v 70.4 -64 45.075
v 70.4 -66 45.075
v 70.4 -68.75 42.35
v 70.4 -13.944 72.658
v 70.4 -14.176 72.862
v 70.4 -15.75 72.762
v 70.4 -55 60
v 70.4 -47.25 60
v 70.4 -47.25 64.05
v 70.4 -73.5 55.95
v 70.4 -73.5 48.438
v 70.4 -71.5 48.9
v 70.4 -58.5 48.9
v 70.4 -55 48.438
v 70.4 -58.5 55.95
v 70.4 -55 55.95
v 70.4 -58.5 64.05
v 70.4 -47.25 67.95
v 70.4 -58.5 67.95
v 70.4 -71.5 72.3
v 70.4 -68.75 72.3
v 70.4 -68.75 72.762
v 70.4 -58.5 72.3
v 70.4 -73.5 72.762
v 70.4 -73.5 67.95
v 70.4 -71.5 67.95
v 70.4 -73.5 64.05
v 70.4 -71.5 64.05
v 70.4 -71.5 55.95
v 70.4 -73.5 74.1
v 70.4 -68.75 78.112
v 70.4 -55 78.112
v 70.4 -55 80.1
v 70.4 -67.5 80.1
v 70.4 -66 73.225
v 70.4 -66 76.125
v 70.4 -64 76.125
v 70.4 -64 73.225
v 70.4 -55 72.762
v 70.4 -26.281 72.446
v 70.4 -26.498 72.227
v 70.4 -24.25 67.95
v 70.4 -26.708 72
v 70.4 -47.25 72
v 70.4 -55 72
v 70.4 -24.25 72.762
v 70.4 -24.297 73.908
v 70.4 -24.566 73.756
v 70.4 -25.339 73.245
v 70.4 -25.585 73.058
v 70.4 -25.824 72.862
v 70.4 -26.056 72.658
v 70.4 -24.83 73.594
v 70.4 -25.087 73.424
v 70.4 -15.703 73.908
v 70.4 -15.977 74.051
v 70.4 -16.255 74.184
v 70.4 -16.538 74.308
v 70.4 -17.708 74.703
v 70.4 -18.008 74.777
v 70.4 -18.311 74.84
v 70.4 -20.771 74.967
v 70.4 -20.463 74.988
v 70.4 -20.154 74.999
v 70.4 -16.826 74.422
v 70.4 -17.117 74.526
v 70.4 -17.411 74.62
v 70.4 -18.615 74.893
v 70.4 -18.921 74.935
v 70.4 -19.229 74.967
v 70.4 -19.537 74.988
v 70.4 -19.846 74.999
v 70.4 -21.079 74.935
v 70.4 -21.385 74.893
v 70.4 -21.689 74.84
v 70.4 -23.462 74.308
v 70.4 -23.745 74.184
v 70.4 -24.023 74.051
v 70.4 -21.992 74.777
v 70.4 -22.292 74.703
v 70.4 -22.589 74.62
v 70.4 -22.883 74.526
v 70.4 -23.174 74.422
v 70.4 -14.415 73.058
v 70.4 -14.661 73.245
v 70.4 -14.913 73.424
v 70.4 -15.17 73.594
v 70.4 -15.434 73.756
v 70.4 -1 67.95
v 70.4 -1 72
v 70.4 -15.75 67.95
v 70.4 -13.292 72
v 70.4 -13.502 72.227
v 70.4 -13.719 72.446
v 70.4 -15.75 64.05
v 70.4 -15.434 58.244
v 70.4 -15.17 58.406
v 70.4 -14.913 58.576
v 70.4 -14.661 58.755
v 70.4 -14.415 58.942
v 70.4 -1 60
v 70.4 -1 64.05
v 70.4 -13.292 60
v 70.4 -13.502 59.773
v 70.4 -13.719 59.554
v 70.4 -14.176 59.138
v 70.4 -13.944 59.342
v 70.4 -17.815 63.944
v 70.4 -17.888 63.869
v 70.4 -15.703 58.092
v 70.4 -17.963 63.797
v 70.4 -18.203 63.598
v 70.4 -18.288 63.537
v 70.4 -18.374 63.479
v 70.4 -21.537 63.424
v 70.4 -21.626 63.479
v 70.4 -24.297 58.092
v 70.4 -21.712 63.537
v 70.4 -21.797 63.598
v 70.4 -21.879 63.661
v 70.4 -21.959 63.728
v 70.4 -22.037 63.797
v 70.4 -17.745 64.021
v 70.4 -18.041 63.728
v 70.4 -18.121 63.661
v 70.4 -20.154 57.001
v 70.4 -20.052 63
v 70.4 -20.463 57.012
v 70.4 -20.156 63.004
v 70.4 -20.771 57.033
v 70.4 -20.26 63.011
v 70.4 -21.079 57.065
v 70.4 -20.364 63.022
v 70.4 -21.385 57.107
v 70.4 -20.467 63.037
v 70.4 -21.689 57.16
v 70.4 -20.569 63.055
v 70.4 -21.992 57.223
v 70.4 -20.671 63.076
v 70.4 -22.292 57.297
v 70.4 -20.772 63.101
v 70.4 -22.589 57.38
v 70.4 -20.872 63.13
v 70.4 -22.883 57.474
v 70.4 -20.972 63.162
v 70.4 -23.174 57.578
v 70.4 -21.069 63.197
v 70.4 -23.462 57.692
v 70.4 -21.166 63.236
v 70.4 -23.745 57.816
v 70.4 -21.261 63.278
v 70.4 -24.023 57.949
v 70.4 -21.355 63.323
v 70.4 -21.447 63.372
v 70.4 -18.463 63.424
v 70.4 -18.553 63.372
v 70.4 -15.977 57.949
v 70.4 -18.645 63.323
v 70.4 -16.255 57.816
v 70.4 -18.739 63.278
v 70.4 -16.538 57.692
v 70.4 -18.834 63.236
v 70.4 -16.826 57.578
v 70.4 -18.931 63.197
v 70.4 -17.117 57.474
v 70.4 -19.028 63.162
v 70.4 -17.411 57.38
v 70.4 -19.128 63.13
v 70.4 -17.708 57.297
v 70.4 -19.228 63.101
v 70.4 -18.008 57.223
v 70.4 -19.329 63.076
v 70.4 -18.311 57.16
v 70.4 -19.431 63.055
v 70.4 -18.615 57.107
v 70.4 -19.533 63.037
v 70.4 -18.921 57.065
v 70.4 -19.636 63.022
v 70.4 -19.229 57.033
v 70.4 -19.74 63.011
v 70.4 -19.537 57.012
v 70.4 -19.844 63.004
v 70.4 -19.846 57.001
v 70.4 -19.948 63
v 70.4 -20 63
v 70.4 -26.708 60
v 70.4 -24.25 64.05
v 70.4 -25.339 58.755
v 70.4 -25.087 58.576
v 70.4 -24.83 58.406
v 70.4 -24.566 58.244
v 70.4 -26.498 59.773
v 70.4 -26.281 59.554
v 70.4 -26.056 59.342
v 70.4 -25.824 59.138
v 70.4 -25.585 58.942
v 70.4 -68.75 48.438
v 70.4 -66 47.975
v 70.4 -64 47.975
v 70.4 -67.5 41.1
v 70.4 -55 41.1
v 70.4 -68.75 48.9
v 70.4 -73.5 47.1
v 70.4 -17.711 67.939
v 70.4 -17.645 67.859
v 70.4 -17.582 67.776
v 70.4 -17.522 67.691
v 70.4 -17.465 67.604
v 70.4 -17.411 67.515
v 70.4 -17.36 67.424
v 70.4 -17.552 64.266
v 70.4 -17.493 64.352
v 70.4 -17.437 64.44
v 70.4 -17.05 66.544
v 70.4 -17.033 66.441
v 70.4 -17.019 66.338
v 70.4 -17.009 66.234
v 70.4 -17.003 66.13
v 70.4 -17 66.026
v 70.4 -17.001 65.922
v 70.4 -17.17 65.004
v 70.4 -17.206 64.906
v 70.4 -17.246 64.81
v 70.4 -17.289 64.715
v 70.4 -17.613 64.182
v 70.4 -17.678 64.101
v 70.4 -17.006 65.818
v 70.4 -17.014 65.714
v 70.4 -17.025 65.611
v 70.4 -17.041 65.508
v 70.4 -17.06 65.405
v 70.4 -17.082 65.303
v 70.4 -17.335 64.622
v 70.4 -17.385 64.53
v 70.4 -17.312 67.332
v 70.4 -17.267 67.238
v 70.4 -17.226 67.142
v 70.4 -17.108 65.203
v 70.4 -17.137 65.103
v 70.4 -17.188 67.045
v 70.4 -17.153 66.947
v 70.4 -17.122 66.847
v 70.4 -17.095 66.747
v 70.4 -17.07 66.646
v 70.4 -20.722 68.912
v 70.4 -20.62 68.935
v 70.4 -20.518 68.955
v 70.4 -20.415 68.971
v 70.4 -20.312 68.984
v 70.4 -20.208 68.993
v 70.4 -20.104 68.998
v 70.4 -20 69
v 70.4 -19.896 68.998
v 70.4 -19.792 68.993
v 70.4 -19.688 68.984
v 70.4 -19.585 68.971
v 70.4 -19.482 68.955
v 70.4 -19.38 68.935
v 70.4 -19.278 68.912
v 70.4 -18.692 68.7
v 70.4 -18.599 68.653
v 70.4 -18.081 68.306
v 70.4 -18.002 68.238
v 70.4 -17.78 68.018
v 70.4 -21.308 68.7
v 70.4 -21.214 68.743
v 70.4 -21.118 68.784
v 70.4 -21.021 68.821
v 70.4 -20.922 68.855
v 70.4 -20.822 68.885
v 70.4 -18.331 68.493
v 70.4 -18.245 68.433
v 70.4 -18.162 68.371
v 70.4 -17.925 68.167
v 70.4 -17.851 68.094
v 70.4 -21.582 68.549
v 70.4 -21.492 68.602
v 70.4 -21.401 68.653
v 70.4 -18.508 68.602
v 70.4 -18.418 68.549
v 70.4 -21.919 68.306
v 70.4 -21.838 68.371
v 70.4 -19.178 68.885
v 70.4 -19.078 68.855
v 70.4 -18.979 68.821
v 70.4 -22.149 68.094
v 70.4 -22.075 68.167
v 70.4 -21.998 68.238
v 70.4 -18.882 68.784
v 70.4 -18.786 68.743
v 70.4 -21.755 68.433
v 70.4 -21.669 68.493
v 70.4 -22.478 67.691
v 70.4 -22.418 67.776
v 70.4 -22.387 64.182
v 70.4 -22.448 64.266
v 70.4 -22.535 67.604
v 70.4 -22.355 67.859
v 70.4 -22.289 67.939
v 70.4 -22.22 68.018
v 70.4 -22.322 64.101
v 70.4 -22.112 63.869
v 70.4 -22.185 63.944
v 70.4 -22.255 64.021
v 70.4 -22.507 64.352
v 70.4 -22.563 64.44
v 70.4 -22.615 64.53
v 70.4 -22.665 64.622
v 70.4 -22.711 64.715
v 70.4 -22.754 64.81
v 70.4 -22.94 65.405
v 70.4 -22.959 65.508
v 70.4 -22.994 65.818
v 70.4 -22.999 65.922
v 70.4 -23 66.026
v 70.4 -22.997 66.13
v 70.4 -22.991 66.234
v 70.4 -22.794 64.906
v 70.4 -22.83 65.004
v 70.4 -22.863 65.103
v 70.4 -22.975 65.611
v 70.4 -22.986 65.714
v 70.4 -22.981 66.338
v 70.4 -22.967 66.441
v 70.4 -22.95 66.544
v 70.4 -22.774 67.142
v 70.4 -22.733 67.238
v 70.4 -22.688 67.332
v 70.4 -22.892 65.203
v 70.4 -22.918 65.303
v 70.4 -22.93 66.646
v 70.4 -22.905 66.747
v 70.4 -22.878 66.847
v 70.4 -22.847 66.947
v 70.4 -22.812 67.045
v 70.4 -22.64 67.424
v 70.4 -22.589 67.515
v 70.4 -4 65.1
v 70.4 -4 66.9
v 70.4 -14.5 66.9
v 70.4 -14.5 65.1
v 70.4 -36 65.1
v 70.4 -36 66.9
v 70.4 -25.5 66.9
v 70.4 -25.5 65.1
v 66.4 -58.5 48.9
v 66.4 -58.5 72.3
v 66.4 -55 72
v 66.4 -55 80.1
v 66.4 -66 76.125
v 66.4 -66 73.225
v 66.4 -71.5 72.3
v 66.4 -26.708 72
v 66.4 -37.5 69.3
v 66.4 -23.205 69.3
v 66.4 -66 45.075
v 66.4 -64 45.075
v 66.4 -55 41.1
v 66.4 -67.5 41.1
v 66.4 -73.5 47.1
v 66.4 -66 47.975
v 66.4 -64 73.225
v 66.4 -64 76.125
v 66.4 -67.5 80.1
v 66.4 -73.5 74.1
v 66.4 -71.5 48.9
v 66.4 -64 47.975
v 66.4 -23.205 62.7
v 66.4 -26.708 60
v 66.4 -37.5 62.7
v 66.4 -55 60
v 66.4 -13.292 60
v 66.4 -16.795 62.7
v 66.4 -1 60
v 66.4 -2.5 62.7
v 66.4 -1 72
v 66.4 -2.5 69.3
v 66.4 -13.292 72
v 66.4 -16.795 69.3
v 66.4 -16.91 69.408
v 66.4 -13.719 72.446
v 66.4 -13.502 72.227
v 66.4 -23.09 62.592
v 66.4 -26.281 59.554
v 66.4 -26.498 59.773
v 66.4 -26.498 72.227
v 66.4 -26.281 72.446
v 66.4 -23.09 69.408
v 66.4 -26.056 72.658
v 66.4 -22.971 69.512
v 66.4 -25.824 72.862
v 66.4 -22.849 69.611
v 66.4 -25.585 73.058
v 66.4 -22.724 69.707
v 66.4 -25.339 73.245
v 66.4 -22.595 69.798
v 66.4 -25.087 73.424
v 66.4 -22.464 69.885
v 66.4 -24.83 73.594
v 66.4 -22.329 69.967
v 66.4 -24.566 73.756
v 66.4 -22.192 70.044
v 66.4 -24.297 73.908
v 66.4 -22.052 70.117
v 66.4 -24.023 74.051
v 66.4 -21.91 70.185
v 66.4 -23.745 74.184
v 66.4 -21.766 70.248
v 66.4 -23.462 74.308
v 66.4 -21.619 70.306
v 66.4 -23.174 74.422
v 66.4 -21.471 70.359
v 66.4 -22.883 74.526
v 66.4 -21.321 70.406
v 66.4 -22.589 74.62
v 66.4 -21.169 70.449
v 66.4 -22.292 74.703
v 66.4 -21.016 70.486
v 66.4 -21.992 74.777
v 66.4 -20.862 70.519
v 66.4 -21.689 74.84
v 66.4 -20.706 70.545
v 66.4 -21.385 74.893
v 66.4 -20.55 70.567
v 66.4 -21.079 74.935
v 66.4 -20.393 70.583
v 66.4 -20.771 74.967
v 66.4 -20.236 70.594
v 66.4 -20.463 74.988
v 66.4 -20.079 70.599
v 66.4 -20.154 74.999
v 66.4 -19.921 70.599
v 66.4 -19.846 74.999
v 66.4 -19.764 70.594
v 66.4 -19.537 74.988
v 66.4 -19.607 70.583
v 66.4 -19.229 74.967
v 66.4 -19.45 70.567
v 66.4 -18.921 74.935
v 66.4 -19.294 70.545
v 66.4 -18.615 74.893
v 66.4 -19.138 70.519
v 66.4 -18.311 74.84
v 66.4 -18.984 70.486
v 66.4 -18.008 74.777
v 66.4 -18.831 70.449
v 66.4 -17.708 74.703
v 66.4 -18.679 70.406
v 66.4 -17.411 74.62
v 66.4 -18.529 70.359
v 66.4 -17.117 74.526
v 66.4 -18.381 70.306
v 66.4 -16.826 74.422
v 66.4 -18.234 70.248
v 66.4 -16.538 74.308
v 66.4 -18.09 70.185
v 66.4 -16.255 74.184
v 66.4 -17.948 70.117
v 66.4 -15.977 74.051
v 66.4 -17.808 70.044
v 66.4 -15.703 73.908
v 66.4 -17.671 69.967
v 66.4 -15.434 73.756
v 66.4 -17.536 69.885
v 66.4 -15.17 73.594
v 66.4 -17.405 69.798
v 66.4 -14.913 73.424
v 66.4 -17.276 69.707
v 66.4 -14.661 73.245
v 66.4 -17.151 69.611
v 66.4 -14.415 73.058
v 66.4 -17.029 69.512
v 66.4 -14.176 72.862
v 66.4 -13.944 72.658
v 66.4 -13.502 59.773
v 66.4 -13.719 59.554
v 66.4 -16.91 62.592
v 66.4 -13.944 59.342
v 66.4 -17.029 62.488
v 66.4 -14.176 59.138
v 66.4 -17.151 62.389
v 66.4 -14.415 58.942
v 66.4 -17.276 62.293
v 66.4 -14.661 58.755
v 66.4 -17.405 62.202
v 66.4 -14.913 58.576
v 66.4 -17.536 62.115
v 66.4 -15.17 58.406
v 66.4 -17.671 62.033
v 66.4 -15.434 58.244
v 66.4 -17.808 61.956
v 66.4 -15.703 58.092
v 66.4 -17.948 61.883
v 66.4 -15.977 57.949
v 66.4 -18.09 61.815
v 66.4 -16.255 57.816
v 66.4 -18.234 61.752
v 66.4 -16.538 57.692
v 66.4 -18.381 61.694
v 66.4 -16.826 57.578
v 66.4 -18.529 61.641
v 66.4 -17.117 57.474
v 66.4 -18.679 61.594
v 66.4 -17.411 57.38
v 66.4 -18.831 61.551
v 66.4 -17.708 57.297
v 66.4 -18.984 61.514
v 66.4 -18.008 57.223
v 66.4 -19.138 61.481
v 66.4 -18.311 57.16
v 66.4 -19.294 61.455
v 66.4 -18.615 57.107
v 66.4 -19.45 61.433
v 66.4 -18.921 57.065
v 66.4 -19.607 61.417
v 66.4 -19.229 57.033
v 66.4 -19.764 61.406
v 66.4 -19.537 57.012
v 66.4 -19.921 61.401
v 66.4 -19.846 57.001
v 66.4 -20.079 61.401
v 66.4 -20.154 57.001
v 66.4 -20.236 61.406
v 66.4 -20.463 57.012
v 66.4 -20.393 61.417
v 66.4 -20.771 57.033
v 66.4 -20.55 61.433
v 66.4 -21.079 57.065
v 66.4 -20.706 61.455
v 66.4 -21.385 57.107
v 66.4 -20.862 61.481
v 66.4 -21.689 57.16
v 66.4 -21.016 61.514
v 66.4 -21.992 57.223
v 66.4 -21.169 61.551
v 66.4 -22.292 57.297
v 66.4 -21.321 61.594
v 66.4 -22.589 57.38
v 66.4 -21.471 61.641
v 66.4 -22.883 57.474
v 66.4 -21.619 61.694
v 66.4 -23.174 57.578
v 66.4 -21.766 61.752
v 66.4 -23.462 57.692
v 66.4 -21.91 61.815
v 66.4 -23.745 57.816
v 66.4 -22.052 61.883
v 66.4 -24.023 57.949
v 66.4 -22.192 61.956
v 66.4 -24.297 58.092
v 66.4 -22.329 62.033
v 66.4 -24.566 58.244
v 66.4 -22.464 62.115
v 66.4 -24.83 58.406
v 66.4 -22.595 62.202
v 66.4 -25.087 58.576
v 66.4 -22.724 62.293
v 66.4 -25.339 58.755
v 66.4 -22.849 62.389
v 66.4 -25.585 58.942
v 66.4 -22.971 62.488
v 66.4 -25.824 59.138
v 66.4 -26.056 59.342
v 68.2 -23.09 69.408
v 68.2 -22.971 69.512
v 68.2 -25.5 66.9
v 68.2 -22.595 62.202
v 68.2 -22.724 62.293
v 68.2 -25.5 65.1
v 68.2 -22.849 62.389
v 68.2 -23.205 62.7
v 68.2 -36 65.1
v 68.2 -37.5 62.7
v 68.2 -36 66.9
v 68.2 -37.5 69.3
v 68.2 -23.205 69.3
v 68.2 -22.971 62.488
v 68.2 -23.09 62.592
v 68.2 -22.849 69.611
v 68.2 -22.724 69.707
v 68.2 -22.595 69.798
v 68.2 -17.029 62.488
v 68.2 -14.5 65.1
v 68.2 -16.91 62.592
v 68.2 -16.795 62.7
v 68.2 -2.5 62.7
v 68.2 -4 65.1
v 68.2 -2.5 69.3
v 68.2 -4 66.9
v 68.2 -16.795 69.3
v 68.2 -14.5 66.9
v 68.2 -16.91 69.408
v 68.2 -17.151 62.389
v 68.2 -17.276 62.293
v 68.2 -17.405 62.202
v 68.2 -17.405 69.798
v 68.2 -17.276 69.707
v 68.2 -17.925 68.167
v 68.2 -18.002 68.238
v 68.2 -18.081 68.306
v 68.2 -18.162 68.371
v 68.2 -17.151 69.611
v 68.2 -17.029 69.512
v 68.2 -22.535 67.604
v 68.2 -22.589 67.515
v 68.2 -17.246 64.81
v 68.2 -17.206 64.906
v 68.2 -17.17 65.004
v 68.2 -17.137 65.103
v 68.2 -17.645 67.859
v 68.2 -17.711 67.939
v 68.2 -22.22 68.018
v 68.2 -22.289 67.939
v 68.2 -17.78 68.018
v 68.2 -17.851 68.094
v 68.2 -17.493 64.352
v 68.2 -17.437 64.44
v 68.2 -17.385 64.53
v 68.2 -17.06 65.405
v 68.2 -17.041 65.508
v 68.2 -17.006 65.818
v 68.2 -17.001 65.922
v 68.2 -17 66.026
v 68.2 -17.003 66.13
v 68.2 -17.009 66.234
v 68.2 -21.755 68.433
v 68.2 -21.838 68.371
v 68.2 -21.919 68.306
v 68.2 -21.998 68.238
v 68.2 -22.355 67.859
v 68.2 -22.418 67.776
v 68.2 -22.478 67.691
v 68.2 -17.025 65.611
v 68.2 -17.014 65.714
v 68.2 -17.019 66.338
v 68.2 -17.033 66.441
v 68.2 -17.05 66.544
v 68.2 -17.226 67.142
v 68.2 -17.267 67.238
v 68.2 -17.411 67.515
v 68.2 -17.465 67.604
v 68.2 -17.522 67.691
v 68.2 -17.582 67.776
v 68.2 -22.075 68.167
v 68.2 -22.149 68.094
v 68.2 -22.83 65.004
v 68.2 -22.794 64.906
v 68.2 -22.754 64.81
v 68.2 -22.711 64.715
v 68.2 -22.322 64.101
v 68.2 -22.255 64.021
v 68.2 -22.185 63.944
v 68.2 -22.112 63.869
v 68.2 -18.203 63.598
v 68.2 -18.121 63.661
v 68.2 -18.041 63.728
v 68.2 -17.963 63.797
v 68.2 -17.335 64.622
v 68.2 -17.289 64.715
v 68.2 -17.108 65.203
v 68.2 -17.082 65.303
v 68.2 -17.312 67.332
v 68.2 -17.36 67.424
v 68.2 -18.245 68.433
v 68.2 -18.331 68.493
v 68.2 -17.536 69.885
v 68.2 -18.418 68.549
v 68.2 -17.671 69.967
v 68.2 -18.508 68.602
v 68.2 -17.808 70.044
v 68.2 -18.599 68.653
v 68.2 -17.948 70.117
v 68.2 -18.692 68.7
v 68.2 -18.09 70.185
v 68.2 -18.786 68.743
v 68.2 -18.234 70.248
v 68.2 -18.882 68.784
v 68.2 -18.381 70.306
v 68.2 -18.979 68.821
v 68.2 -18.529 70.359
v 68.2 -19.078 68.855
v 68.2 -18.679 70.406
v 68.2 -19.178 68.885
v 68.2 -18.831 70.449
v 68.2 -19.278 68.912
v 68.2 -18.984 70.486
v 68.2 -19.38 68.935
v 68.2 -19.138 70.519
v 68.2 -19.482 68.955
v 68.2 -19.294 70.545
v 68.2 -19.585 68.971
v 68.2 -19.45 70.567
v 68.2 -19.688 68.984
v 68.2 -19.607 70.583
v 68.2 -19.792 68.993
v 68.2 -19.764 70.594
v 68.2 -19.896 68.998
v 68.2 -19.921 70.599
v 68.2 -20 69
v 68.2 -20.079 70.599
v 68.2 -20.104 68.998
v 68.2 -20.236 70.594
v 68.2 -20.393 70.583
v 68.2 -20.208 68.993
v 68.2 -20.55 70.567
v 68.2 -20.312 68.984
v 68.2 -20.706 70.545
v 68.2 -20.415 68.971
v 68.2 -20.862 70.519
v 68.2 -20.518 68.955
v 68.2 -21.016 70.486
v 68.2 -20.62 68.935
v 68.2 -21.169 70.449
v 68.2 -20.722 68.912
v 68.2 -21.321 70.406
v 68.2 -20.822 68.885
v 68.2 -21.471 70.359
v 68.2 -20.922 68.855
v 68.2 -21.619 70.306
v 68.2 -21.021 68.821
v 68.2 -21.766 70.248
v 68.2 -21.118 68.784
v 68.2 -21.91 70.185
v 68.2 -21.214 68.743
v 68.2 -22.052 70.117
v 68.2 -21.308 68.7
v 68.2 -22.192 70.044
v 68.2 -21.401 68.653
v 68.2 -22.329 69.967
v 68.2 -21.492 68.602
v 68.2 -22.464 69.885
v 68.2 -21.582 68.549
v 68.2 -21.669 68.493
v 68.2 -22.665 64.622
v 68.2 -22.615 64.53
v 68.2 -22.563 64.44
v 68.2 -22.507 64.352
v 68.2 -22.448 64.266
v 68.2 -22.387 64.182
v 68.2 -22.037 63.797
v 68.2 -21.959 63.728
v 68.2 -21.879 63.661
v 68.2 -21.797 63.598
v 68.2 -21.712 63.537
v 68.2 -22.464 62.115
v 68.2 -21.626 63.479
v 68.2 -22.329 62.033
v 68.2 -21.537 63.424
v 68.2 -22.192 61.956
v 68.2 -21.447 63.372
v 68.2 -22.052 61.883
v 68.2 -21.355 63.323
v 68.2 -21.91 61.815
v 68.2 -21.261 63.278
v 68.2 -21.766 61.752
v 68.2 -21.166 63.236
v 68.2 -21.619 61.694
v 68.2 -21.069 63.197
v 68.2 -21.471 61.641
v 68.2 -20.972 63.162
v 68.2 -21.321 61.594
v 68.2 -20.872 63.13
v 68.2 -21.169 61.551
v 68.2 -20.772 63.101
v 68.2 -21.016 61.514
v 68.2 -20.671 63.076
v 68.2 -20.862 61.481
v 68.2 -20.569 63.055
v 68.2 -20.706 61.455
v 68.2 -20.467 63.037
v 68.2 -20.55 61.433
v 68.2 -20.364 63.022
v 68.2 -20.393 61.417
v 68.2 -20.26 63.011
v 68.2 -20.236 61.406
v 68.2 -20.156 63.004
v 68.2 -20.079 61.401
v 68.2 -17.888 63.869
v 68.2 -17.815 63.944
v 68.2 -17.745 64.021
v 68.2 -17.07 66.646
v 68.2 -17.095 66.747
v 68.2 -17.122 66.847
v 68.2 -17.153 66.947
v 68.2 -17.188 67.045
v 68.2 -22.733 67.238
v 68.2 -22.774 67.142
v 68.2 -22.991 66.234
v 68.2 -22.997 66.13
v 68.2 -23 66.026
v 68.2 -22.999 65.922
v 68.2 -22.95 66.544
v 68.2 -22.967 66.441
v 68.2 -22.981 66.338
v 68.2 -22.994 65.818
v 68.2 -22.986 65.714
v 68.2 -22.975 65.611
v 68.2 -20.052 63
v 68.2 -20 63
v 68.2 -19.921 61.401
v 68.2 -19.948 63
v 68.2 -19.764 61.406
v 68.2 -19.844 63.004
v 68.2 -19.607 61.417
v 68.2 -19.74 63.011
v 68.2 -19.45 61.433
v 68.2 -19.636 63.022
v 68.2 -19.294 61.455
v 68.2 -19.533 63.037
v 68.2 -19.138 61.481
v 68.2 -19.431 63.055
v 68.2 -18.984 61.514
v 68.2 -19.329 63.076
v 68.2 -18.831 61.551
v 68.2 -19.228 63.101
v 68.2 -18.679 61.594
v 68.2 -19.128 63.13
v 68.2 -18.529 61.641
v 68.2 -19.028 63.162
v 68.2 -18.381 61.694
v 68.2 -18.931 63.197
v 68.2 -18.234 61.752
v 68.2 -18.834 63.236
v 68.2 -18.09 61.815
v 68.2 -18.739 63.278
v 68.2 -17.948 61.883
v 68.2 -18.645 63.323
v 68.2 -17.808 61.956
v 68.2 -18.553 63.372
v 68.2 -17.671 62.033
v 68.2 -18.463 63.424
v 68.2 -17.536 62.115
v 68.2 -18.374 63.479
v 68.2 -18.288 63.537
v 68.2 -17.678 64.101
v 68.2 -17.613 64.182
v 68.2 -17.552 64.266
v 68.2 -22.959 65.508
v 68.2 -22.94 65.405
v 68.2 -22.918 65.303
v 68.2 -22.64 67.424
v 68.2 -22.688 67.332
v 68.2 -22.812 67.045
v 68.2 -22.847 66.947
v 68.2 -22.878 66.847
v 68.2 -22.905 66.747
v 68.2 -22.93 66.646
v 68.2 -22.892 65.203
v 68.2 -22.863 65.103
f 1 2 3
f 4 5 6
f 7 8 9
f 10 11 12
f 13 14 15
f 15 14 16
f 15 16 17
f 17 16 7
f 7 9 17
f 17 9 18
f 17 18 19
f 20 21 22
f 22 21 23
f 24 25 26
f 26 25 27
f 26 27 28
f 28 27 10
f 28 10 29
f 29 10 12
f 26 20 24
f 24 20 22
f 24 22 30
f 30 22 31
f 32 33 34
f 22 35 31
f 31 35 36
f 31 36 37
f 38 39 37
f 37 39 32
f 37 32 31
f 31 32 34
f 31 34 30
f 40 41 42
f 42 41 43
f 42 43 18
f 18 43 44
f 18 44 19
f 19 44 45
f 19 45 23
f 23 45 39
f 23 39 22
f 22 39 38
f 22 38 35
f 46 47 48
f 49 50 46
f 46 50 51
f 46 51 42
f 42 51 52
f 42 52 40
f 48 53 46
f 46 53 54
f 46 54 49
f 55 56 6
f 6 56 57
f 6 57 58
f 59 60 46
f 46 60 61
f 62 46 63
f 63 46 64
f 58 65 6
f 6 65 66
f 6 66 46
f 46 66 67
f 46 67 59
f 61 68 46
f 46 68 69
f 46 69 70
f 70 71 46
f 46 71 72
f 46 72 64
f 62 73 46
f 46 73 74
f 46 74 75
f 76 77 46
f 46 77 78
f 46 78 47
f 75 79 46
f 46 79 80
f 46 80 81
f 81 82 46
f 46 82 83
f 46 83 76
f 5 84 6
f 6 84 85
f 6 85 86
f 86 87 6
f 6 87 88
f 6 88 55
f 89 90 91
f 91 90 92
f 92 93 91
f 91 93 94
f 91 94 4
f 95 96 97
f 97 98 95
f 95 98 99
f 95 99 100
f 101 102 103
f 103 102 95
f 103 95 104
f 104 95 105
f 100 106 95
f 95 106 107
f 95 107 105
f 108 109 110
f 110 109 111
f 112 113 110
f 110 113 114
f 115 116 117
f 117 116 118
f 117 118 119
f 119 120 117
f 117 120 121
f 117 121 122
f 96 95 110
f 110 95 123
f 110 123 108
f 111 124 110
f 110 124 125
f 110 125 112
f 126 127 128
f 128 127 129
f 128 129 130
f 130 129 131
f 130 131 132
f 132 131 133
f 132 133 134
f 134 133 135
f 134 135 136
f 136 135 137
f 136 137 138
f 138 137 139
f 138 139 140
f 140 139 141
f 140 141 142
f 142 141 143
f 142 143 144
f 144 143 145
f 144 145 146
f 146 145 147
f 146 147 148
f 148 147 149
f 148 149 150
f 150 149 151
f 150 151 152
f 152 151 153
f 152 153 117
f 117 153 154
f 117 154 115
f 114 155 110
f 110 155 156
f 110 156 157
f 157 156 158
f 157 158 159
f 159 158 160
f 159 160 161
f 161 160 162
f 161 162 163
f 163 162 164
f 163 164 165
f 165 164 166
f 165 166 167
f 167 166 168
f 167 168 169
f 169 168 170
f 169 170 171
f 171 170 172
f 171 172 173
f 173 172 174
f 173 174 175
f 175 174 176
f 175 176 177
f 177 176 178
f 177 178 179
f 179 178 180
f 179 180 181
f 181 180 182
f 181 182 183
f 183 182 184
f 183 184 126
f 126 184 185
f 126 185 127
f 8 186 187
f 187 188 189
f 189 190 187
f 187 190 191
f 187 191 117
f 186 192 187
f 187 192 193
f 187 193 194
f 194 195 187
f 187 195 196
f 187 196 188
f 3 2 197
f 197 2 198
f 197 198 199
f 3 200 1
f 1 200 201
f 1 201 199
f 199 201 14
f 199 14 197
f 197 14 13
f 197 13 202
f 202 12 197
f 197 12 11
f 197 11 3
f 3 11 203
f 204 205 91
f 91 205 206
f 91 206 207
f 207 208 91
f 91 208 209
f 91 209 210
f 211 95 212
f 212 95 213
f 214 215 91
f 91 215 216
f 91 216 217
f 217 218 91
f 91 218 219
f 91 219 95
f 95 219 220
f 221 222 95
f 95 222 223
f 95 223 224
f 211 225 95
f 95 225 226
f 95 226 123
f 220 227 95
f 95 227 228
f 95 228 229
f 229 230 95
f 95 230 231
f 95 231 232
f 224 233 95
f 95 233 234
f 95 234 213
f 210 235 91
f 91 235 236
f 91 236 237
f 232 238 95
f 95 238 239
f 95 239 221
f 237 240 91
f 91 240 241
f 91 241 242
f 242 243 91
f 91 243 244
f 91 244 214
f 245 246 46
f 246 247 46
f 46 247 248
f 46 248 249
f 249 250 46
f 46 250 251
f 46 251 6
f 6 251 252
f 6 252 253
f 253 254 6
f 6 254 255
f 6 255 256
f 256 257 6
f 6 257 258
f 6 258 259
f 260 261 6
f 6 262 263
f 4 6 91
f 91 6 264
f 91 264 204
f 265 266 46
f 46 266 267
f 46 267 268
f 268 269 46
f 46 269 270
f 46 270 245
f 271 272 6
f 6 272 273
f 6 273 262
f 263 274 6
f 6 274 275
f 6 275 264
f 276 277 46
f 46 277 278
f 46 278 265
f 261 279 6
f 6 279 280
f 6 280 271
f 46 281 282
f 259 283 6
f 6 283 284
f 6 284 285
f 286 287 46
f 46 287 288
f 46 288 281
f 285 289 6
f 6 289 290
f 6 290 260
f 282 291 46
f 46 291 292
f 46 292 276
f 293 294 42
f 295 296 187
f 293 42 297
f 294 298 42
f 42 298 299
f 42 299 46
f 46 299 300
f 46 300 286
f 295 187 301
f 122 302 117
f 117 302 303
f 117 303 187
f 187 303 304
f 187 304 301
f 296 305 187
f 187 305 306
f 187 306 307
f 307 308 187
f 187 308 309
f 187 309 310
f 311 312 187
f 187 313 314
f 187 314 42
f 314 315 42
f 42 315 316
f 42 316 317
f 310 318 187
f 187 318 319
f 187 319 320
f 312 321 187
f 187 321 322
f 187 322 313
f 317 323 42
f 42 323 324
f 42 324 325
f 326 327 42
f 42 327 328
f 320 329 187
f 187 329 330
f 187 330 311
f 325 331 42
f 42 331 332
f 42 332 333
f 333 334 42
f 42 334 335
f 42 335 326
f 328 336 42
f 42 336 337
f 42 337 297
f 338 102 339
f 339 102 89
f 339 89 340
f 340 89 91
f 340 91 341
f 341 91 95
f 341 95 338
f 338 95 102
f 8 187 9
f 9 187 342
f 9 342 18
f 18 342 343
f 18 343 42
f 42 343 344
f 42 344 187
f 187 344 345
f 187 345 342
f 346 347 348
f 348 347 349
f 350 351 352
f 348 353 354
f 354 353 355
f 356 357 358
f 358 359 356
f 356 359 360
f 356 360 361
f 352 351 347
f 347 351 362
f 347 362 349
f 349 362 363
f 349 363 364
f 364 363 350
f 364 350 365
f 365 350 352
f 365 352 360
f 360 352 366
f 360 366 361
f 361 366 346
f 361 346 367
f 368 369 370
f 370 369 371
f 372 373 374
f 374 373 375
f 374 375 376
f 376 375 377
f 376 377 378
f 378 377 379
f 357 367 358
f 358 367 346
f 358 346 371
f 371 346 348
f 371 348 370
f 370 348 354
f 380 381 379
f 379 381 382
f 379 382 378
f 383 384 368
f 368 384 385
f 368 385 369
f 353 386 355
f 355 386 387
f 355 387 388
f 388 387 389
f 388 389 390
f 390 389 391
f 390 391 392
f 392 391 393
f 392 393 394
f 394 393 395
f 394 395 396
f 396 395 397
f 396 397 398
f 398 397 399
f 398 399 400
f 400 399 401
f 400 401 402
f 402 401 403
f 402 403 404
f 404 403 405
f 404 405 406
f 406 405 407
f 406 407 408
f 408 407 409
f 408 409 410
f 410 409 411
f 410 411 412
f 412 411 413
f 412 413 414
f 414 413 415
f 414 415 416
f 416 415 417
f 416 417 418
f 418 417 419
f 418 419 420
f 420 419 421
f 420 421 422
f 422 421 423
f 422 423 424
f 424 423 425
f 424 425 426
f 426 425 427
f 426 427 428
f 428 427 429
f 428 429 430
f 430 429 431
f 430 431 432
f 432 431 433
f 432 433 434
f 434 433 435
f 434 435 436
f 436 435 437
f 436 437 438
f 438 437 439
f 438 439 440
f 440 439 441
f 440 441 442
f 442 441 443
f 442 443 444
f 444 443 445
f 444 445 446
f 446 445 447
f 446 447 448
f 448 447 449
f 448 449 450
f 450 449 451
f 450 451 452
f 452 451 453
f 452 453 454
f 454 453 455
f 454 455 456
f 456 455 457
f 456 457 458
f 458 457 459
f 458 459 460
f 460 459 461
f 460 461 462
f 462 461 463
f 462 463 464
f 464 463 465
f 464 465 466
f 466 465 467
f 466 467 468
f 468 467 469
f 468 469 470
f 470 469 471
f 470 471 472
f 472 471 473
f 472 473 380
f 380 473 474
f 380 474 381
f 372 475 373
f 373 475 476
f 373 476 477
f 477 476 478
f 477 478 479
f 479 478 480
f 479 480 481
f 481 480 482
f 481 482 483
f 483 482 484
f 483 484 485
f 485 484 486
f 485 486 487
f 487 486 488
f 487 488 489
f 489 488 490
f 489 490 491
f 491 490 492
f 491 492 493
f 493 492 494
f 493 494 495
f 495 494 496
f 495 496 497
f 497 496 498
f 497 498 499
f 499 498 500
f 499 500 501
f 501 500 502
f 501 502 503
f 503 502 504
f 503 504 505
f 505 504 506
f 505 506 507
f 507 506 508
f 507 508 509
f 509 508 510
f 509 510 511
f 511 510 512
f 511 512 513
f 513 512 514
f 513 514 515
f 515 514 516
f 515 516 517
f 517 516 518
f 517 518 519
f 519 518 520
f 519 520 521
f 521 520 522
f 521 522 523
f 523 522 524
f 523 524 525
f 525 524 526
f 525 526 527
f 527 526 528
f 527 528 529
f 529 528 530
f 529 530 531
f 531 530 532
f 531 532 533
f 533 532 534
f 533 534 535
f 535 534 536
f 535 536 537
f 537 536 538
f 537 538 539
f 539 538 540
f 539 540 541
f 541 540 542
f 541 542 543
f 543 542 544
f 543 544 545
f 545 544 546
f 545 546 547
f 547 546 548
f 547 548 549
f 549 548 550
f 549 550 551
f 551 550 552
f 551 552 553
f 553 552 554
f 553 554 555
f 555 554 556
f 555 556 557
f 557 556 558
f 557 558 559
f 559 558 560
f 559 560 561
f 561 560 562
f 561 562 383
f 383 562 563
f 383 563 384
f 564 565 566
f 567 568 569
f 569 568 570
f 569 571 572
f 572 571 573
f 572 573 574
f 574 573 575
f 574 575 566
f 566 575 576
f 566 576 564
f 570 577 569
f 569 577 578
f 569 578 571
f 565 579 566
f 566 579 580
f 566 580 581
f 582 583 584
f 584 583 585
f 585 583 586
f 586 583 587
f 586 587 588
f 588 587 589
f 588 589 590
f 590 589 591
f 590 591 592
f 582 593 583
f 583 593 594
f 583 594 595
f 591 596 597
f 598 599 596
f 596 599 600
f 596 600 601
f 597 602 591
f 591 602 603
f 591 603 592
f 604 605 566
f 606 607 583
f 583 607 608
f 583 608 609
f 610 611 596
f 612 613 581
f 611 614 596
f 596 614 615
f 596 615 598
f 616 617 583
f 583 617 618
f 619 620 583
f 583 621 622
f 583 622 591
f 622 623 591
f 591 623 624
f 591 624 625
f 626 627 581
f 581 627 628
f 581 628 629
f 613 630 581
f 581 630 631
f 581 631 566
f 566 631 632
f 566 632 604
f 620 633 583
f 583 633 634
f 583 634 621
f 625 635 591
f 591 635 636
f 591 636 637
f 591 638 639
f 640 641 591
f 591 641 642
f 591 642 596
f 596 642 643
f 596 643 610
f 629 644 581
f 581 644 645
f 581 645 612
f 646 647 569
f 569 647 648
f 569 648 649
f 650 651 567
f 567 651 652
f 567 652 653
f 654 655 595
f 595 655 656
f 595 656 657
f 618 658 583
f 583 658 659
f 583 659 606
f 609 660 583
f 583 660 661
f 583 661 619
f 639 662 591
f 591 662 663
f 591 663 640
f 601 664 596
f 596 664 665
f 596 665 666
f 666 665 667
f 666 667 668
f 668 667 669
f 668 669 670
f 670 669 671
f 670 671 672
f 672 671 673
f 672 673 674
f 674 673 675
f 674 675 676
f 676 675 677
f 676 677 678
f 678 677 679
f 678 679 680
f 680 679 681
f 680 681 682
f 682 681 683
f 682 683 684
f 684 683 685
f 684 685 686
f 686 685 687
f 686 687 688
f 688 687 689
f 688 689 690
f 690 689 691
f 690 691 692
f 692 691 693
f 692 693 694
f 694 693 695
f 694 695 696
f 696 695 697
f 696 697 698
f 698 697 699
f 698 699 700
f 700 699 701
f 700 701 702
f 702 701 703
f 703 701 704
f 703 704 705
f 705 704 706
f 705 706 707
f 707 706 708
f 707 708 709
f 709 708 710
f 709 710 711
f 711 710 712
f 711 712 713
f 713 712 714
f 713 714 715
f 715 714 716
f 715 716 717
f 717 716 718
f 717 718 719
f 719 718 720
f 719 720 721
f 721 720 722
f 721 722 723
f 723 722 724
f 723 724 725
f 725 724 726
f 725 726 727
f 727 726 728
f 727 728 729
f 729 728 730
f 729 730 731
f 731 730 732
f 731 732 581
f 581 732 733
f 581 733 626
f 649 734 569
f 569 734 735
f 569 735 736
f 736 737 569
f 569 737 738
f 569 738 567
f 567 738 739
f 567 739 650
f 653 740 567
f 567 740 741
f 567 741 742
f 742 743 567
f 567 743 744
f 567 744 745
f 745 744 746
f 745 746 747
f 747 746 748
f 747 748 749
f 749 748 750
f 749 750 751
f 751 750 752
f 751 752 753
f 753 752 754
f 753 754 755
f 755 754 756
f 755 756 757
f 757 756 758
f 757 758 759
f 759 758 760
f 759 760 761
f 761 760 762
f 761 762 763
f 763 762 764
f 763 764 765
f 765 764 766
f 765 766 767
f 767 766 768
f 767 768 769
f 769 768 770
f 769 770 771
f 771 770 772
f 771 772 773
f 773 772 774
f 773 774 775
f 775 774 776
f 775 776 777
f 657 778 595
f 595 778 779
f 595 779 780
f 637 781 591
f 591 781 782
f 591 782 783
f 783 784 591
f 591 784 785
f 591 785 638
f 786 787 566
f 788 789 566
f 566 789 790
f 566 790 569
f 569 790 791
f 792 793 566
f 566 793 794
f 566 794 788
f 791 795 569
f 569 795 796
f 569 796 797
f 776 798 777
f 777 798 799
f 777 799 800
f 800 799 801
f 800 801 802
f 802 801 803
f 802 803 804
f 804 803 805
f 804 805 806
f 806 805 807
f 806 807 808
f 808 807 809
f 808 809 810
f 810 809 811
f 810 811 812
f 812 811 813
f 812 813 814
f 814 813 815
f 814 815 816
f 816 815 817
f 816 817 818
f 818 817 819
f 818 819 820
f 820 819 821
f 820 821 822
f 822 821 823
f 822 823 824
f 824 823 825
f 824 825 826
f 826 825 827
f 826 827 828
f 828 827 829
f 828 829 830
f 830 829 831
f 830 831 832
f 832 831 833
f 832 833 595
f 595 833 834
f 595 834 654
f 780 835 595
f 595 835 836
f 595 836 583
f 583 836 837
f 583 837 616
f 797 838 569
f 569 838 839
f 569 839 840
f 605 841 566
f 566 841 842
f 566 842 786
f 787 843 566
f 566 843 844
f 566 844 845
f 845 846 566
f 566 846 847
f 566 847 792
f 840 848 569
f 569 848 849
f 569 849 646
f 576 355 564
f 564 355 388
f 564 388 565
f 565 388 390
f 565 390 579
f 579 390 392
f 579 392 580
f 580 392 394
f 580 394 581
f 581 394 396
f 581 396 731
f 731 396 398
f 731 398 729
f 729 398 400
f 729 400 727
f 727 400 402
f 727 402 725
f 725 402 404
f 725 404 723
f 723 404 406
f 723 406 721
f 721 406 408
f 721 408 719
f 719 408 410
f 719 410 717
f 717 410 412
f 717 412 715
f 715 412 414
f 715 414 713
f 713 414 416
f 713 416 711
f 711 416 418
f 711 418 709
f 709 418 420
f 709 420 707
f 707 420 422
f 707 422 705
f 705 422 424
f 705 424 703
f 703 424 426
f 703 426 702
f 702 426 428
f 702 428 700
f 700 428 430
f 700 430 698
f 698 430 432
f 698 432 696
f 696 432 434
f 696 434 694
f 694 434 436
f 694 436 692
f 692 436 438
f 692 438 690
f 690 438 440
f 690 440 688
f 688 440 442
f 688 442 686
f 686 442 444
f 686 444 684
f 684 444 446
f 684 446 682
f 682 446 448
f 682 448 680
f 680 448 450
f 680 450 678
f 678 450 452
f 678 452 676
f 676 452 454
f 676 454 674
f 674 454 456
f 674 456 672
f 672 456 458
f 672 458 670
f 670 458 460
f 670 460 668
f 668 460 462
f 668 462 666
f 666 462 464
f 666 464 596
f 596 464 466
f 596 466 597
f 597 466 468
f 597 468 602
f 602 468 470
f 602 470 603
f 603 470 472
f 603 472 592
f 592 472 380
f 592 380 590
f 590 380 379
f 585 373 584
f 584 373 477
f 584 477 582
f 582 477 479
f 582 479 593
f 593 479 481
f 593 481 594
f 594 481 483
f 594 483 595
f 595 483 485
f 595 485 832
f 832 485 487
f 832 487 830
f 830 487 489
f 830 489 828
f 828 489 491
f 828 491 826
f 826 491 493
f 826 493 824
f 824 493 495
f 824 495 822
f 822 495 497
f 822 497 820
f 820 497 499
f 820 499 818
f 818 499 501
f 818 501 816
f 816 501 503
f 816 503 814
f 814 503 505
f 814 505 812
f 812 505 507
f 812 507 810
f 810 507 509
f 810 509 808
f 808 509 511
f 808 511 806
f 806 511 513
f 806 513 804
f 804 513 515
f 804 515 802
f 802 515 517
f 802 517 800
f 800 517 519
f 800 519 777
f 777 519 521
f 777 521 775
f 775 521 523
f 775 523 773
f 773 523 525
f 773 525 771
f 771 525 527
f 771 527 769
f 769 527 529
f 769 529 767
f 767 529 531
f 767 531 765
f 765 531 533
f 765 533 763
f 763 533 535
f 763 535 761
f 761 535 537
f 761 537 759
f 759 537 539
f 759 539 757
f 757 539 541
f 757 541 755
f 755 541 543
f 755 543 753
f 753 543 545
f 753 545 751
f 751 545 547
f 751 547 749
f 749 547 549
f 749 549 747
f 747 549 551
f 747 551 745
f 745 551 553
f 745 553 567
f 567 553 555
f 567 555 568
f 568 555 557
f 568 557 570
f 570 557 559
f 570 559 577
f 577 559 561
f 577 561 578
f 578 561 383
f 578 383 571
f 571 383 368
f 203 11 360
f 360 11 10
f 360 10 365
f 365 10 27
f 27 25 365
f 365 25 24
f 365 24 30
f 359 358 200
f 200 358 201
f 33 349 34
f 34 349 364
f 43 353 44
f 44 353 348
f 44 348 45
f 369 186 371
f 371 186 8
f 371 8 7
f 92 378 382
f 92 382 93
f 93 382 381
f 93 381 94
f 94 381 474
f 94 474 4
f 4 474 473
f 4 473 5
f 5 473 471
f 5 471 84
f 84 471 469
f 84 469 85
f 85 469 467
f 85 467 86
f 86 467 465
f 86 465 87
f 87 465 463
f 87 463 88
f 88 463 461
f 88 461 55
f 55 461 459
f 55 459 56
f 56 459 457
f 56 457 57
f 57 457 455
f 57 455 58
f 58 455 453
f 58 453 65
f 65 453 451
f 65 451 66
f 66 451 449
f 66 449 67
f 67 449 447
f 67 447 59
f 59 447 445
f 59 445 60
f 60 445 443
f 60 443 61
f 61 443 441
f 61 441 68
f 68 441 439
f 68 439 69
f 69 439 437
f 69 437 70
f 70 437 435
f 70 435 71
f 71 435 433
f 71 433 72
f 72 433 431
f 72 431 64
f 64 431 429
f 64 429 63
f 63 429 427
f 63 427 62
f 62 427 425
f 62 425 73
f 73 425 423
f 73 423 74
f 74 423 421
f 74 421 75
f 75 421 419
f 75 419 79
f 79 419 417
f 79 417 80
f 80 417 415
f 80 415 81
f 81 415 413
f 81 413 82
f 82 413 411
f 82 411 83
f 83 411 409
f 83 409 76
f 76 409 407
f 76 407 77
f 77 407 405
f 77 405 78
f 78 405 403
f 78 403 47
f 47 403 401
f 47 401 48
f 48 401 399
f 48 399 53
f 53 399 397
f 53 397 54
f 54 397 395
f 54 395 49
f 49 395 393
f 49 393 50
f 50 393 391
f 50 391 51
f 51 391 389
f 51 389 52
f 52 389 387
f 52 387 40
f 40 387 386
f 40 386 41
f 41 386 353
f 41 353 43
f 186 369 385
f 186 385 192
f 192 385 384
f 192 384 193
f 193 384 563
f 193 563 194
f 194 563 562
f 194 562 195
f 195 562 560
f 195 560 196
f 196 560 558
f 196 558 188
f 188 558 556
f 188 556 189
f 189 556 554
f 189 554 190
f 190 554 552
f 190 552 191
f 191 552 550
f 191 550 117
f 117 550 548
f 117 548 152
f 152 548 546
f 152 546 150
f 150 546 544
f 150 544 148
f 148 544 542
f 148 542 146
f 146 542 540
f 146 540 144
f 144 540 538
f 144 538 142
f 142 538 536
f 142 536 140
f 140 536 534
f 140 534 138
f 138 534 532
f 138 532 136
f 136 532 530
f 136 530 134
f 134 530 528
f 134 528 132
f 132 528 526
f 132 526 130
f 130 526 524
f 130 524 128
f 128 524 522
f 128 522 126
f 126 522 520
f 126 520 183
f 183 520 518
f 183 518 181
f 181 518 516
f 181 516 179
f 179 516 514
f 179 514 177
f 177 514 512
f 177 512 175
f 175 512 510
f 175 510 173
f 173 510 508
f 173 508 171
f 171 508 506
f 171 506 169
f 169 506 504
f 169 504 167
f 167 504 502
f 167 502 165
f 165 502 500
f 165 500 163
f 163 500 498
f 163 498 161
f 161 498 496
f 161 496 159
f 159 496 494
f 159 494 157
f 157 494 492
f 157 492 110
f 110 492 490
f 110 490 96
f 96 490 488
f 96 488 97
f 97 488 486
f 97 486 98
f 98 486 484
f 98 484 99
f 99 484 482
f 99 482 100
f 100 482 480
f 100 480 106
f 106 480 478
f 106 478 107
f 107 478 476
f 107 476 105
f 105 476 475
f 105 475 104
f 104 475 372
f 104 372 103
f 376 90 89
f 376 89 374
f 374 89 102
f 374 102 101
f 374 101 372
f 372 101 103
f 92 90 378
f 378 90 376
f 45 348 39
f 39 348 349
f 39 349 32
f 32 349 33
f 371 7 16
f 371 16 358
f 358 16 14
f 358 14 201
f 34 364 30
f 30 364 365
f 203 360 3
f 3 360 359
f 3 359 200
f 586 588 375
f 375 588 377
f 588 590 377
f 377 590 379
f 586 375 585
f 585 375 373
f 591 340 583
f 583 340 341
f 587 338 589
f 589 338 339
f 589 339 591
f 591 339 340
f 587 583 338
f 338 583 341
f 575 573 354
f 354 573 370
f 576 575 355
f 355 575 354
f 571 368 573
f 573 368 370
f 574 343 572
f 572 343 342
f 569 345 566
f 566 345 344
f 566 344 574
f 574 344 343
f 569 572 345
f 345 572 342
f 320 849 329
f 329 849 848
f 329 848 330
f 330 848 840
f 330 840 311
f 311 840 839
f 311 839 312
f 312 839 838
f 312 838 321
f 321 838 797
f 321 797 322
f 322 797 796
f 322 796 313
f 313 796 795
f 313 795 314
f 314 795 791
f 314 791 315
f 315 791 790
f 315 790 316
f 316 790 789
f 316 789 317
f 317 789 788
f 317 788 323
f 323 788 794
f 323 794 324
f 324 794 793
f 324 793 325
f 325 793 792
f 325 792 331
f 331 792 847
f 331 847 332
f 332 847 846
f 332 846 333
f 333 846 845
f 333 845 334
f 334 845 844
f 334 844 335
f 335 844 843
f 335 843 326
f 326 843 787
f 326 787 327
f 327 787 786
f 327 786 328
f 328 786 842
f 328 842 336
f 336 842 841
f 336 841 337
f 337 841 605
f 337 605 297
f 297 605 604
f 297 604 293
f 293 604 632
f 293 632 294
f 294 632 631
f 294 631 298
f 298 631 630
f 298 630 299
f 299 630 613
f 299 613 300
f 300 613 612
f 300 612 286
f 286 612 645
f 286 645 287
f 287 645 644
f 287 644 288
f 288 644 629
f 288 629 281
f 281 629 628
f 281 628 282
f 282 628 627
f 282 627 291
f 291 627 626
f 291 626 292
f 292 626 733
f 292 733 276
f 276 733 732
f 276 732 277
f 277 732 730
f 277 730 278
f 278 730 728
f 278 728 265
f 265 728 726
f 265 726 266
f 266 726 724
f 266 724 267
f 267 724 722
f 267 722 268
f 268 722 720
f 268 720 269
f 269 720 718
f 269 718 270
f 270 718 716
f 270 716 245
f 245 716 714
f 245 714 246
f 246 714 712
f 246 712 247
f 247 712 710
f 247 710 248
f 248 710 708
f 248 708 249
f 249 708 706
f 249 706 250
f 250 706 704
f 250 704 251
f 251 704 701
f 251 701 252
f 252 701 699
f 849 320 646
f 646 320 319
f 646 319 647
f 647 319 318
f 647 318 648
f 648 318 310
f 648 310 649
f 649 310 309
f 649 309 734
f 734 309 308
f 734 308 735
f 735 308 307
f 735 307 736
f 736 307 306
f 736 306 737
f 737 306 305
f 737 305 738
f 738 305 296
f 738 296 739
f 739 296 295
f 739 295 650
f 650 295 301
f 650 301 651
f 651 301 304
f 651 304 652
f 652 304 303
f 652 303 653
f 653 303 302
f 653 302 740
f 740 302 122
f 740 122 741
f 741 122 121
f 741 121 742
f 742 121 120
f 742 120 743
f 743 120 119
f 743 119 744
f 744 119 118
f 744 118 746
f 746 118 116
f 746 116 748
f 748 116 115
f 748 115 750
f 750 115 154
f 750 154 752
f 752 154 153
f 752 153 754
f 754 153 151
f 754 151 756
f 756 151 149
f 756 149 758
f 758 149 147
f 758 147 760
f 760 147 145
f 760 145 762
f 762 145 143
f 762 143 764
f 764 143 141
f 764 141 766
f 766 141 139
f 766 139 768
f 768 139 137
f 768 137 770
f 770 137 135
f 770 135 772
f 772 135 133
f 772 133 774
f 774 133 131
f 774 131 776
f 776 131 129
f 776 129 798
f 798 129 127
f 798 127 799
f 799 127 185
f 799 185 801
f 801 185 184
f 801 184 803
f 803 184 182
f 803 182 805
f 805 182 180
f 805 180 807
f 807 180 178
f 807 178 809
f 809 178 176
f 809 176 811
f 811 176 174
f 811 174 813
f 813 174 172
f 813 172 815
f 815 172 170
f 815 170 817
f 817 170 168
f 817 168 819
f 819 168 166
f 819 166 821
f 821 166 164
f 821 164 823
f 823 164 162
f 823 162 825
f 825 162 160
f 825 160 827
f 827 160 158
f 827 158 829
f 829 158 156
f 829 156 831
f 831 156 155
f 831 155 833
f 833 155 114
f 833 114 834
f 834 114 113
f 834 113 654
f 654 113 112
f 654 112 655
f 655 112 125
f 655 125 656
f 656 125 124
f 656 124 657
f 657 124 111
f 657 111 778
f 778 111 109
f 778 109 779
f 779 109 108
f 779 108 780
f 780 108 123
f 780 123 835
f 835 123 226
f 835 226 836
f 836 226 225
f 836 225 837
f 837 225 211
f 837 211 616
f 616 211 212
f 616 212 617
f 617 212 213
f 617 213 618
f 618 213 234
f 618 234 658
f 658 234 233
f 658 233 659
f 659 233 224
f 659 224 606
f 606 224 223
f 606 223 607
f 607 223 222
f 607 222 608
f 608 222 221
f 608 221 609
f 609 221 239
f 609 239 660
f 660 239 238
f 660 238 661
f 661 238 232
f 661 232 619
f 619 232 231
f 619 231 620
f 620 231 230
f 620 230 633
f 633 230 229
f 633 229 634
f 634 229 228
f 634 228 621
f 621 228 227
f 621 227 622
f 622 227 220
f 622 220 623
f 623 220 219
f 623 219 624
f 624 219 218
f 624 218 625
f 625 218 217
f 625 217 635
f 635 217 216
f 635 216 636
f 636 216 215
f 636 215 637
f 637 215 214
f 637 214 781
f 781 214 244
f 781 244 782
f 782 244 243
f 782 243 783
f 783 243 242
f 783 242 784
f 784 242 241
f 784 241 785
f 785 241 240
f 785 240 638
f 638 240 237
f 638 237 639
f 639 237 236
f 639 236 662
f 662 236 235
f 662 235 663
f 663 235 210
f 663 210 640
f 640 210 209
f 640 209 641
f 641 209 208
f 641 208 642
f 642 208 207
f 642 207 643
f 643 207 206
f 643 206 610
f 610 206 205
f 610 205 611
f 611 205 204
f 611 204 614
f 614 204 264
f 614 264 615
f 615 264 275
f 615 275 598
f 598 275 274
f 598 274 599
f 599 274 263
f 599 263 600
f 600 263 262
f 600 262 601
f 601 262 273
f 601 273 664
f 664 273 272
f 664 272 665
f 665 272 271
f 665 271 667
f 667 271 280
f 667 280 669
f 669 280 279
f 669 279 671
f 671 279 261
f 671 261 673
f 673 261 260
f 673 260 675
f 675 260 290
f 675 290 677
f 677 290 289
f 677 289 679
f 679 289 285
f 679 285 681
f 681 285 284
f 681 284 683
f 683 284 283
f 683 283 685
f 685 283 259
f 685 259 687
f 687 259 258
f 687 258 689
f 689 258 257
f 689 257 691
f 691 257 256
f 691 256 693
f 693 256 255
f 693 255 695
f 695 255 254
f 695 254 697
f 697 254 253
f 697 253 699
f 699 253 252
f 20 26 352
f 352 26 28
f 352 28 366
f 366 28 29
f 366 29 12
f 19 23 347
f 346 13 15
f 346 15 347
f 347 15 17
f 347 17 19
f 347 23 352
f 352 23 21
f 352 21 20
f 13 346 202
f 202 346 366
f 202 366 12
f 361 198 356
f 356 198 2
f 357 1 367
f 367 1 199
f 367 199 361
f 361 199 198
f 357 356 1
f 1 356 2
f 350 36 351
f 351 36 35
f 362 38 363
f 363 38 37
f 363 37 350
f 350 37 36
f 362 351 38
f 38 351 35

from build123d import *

# Parameters (mm, degrees)
BOSS_EXTRUDE1_START  = 66.4
SKETCH1_R            = 9
BOSS_EXTRUDE1_DEPTH  = 4
BOSS_EXTRUDE2_START  = 60
SKETCH2_W            = 4
SKETCH2_H            = 55
BOSS_EXTRUDE2_DEPTH  = 12
BOSS_EXTRUDE3_START  = 41.1
SKETCH3_W            = 4
SKETCH3_H            = 18.5
BOSS_EXTRUDE3_DEPTH  = 39
BOSS_EXTRUDE4_START  = 65.4
BOSS_EXTRUDE4_DEPTH  = 6
BOSS_EXTRUDE5_START  = 65.4
BOSS_EXTRUDE5_DEPTH  = 6
BOSS_EXTRUDE6_START  = 65.9
SKETCH6_R            = 4.6
BOSS_EXTRUDE6_DEPTH  = 2.3
BOSS_EXTRUDE7_START  = 62.7
SKETCH7_W            = 2.3
SKETCH7_H            = 17.5
BOSS_EXTRUDE7_DEPTH  = 6.6
BOSS_EXTRUDE8_START  = 65.1
SKETCH8_W            = 6
SKETCH8_H            = 10.5
BOSS_EXTRUDE8_DEPTH  = 1.8
BOSS_EXTRUDE9_START  = 62.7
SKETCH9_W            = 2.3
SKETCH9_H            = 17.5
BOSS_EXTRUDE9_DEPTH  = 6.6
BOSS_EXTRUDE10_START = 65.1
SKETCH10_W           = 6
SKETCH10_H           = 10.5
BOSS_EXTRUDE10_DEPTH = 1.8
BOSS_EXTRUDE11_START = 65.4
SKETCH11_R           = 3
BOSS_EXTRUDE11_DEPTH = 6
BOSS_EXTRUDE12_START = 48.9
SKETCH12_W           = 6
SKETCH12_H           = 13
BOSS_EXTRUDE12_DEPTH = 23.4
BOSS_EXTRUDE13_START = 45.075
SKETCH13_W           = 6
SKETCH13_H           = 2
BOSS_EXTRUDE13_DEPTH = 2.9
BOSS_EXTRUDE14_START = 73.225
SKETCH14_W           = 6
SKETCH14_H           = 2
BOSS_EXTRUDE14_DEPTH = 2.9


with BuildPart() as part:
    # Sketch1 → Boss-Extrude1 (new body)
    with BuildSketch(Plane(origin=(0, 0, 0), x_dir=(0, 0, -1), z_dir=(1, 0, 0)).offset(BOSS_EXTRUDE1_START)):
        with Locations((-66, -20)):
            Circle(SKETCH1_R)
    extrude(amount=BOSS_EXTRUDE1_DEPTH)

    # Sketch2 → Boss-Extrude2 (add)
    with BuildSketch(Plane.XY.offset(BOSS_EXTRUDE2_START)):
        with Locations((68.4, -28.5)):
            Rectangle(SKETCH2_W, SKETCH2_H)
    extrude(amount=BOSS_EXTRUDE2_DEPTH)

    # Sketch3 → Boss-Extrude3 (add)
    with BuildSketch(Plane.XY.offset(BOSS_EXTRUDE3_START)):
        with Locations((68.4, -64.25)):
            Rectangle(SKETCH3_W, SKETCH3_H)
    extrude(amount=BOSS_EXTRUDE3_DEPTH)


with BuildPart() as body_2:
    # Sketch4 → Boss-Extrude4 (new body)
    with BuildSketch(Plane(origin=(0, 0, 0), x_dir=(0, 0, -1), z_dir=(1, 0, 0)).offset(BOSS_EXTRUDE4_START)):
        Polygon((-81.1, -74.5), (-73.1, -74.5), (-81.1, -66.5), align=None)
    extrude(amount=BOSS_EXTRUDE4_DEPTH)


with BuildPart() as part_1:
    add(part.part)

    # Combine1: cut body 2
    add(body_2.part, mode=Mode.SUBTRACT)


with BuildPart() as body_2_2:
    # Sketch5 → Boss-Extrude5 (new body)
    with BuildSketch(Plane(origin=(0, 0, 0), x_dir=(0, 0, -1), z_dir=(1, 0, 0)).offset(BOSS_EXTRUDE5_START)):
        Polygon((-40.1, -74.5), (-48.1, -74.5), (-40.1, -66.5), align=None)
    extrude(amount=BOSS_EXTRUDE5_DEPTH)


with BuildPart() as part_2:
    add(part_1.part)

    # Combine2: cut body 2 2
    add(body_2_2.part, mode=Mode.SUBTRACT)


with BuildPart() as body_2_3:
    # Sketch6 → Boss-Extrude6 (new body)
    with BuildSketch(Plane(origin=(0, 0, 0), x_dir=(0, 0, -1), z_dir=(1, 0, 0)).offset(BOSS_EXTRUDE6_START)):
        with Locations((-66, -20)):
            Circle(SKETCH6_R)
    extrude(amount=BOSS_EXTRUDE6_DEPTH)


with BuildPart() as part_3:
    add(part_2.part)

    # Combine3: cut body 2 3
    add(body_2_3.part, mode=Mode.SUBTRACT)


with BuildPart() as body_2_4:
    # Sketch7 → Boss-Extrude7 (new body)
    with BuildSketch(Plane.XY.offset(BOSS_EXTRUDE7_START)):
        with Locations((67.05, -11.25)):
            Rectangle(SKETCH7_W, SKETCH7_H)
    extrude(amount=BOSS_EXTRUDE7_DEPTH)


with BuildPart() as part_4:
    add(part_3.part)

    # Combine4: cut body 2 4
    add(body_2_4.part, mode=Mode.SUBTRACT)


with BuildPart() as body_2_5:
    # Sketch8 → Boss-Extrude8 (new body)
    with BuildSketch(Plane.XY.offset(BOSS_EXTRUDE8_START)):
        with Locations((68.4, -9.25)):
            Rectangle(SKETCH8_W, SKETCH8_H)
    extrude(amount=BOSS_EXTRUDE8_DEPTH)


with BuildPart() as part_5:
    add(part_4.part)

    # Combine5: cut body 2 5
    add(body_2_5.part, mode=Mode.SUBTRACT)


with BuildPart() as body_2_6:
    # Sketch9 → Boss-Extrude9 (new body)
    with BuildSketch(Plane.XY.offset(BOSS_EXTRUDE9_START)):
        with Locations((67.05, -28.75)):
            Rectangle(SKETCH9_W, SKETCH9_H)
    extrude(amount=BOSS_EXTRUDE9_DEPTH)


with BuildPart() as part_6:
    add(part_5.part)

    # Combine6: cut body 2 6
    add(body_2_6.part, mode=Mode.SUBTRACT)


with BuildPart() as body_2_7:
    # Sketch10 → Boss-Extrude10 (new body)
    with BuildSketch(Plane.XY.offset(BOSS_EXTRUDE10_START)):
        with Locations((68.4, -30.75)):
            Rectangle(SKETCH10_W, SKETCH10_H)
    extrude(amount=BOSS_EXTRUDE10_DEPTH)


with BuildPart() as part_7:
    add(part_6.part)

    # Combine7: cut body 2 7
    add(body_2_7.part, mode=Mode.SUBTRACT)


with BuildPart() as body_2_8:
    # Sketch11 → Boss-Extrude11 (new body)
    with BuildSketch(Plane(origin=(0, 0, 0), x_dir=(0, 0, -1), z_dir=(1, 0, 0)).offset(BOSS_EXTRUDE11_START)):
        with Locations((-66, -20)):
            Circle(SKETCH11_R)
    extrude(amount=BOSS_EXTRUDE11_DEPTH)


with BuildPart() as part_8:
    add(part_7.part)

    # Combine8: cut body 2 8
    add(body_2_8.part, mode=Mode.SUBTRACT)


with BuildPart() as body_2_9:
    # Sketch12 → Boss-Extrude12 (new body)
    with BuildSketch(Plane.XY.offset(BOSS_EXTRUDE12_START)):
        with Locations((68.4, -65)):
            Rectangle(SKETCH12_W, SKETCH12_H)
    extrude(amount=BOSS_EXTRUDE12_DEPTH)


with BuildPart() as part_9:
    add(part_8.part)

    # Combine9: cut body 2 9
    add(body_2_9.part, mode=Mode.SUBTRACT)


with BuildPart() as body_2_10:
    # Sketch13 → Boss-Extrude13 (new body)
    with BuildSketch(Plane.XY.offset(BOSS_EXTRUDE13_START)):
        with Locations((68.4, -65)):
            Rectangle(SKETCH13_W, SKETCH13_H)
    extrude(amount=BOSS_EXTRUDE13_DEPTH)


with BuildPart() as part_10:
    add(part_9.part)

    # Combine10: cut body 2 10
    add(body_2_10.part, mode=Mode.SUBTRACT)


with BuildPart() as body_2_11:
    # Sketch14 → Boss-Extrude14 (new body)
    with BuildSketch(Plane.XY.offset(BOSS_EXTRUDE14_START)):
        with Locations((68.4, -65)):
            Rectangle(SKETCH14_W, SKETCH14_H)
    extrude(amount=BOSS_EXTRUDE14_DEPTH)


with BuildPart() as part_11:
    add(part_10.part)

    # Combine11: cut body 2 11
    add(body_2_11.part, mode=Mode.SUBTRACT)


solid = part_11.part
